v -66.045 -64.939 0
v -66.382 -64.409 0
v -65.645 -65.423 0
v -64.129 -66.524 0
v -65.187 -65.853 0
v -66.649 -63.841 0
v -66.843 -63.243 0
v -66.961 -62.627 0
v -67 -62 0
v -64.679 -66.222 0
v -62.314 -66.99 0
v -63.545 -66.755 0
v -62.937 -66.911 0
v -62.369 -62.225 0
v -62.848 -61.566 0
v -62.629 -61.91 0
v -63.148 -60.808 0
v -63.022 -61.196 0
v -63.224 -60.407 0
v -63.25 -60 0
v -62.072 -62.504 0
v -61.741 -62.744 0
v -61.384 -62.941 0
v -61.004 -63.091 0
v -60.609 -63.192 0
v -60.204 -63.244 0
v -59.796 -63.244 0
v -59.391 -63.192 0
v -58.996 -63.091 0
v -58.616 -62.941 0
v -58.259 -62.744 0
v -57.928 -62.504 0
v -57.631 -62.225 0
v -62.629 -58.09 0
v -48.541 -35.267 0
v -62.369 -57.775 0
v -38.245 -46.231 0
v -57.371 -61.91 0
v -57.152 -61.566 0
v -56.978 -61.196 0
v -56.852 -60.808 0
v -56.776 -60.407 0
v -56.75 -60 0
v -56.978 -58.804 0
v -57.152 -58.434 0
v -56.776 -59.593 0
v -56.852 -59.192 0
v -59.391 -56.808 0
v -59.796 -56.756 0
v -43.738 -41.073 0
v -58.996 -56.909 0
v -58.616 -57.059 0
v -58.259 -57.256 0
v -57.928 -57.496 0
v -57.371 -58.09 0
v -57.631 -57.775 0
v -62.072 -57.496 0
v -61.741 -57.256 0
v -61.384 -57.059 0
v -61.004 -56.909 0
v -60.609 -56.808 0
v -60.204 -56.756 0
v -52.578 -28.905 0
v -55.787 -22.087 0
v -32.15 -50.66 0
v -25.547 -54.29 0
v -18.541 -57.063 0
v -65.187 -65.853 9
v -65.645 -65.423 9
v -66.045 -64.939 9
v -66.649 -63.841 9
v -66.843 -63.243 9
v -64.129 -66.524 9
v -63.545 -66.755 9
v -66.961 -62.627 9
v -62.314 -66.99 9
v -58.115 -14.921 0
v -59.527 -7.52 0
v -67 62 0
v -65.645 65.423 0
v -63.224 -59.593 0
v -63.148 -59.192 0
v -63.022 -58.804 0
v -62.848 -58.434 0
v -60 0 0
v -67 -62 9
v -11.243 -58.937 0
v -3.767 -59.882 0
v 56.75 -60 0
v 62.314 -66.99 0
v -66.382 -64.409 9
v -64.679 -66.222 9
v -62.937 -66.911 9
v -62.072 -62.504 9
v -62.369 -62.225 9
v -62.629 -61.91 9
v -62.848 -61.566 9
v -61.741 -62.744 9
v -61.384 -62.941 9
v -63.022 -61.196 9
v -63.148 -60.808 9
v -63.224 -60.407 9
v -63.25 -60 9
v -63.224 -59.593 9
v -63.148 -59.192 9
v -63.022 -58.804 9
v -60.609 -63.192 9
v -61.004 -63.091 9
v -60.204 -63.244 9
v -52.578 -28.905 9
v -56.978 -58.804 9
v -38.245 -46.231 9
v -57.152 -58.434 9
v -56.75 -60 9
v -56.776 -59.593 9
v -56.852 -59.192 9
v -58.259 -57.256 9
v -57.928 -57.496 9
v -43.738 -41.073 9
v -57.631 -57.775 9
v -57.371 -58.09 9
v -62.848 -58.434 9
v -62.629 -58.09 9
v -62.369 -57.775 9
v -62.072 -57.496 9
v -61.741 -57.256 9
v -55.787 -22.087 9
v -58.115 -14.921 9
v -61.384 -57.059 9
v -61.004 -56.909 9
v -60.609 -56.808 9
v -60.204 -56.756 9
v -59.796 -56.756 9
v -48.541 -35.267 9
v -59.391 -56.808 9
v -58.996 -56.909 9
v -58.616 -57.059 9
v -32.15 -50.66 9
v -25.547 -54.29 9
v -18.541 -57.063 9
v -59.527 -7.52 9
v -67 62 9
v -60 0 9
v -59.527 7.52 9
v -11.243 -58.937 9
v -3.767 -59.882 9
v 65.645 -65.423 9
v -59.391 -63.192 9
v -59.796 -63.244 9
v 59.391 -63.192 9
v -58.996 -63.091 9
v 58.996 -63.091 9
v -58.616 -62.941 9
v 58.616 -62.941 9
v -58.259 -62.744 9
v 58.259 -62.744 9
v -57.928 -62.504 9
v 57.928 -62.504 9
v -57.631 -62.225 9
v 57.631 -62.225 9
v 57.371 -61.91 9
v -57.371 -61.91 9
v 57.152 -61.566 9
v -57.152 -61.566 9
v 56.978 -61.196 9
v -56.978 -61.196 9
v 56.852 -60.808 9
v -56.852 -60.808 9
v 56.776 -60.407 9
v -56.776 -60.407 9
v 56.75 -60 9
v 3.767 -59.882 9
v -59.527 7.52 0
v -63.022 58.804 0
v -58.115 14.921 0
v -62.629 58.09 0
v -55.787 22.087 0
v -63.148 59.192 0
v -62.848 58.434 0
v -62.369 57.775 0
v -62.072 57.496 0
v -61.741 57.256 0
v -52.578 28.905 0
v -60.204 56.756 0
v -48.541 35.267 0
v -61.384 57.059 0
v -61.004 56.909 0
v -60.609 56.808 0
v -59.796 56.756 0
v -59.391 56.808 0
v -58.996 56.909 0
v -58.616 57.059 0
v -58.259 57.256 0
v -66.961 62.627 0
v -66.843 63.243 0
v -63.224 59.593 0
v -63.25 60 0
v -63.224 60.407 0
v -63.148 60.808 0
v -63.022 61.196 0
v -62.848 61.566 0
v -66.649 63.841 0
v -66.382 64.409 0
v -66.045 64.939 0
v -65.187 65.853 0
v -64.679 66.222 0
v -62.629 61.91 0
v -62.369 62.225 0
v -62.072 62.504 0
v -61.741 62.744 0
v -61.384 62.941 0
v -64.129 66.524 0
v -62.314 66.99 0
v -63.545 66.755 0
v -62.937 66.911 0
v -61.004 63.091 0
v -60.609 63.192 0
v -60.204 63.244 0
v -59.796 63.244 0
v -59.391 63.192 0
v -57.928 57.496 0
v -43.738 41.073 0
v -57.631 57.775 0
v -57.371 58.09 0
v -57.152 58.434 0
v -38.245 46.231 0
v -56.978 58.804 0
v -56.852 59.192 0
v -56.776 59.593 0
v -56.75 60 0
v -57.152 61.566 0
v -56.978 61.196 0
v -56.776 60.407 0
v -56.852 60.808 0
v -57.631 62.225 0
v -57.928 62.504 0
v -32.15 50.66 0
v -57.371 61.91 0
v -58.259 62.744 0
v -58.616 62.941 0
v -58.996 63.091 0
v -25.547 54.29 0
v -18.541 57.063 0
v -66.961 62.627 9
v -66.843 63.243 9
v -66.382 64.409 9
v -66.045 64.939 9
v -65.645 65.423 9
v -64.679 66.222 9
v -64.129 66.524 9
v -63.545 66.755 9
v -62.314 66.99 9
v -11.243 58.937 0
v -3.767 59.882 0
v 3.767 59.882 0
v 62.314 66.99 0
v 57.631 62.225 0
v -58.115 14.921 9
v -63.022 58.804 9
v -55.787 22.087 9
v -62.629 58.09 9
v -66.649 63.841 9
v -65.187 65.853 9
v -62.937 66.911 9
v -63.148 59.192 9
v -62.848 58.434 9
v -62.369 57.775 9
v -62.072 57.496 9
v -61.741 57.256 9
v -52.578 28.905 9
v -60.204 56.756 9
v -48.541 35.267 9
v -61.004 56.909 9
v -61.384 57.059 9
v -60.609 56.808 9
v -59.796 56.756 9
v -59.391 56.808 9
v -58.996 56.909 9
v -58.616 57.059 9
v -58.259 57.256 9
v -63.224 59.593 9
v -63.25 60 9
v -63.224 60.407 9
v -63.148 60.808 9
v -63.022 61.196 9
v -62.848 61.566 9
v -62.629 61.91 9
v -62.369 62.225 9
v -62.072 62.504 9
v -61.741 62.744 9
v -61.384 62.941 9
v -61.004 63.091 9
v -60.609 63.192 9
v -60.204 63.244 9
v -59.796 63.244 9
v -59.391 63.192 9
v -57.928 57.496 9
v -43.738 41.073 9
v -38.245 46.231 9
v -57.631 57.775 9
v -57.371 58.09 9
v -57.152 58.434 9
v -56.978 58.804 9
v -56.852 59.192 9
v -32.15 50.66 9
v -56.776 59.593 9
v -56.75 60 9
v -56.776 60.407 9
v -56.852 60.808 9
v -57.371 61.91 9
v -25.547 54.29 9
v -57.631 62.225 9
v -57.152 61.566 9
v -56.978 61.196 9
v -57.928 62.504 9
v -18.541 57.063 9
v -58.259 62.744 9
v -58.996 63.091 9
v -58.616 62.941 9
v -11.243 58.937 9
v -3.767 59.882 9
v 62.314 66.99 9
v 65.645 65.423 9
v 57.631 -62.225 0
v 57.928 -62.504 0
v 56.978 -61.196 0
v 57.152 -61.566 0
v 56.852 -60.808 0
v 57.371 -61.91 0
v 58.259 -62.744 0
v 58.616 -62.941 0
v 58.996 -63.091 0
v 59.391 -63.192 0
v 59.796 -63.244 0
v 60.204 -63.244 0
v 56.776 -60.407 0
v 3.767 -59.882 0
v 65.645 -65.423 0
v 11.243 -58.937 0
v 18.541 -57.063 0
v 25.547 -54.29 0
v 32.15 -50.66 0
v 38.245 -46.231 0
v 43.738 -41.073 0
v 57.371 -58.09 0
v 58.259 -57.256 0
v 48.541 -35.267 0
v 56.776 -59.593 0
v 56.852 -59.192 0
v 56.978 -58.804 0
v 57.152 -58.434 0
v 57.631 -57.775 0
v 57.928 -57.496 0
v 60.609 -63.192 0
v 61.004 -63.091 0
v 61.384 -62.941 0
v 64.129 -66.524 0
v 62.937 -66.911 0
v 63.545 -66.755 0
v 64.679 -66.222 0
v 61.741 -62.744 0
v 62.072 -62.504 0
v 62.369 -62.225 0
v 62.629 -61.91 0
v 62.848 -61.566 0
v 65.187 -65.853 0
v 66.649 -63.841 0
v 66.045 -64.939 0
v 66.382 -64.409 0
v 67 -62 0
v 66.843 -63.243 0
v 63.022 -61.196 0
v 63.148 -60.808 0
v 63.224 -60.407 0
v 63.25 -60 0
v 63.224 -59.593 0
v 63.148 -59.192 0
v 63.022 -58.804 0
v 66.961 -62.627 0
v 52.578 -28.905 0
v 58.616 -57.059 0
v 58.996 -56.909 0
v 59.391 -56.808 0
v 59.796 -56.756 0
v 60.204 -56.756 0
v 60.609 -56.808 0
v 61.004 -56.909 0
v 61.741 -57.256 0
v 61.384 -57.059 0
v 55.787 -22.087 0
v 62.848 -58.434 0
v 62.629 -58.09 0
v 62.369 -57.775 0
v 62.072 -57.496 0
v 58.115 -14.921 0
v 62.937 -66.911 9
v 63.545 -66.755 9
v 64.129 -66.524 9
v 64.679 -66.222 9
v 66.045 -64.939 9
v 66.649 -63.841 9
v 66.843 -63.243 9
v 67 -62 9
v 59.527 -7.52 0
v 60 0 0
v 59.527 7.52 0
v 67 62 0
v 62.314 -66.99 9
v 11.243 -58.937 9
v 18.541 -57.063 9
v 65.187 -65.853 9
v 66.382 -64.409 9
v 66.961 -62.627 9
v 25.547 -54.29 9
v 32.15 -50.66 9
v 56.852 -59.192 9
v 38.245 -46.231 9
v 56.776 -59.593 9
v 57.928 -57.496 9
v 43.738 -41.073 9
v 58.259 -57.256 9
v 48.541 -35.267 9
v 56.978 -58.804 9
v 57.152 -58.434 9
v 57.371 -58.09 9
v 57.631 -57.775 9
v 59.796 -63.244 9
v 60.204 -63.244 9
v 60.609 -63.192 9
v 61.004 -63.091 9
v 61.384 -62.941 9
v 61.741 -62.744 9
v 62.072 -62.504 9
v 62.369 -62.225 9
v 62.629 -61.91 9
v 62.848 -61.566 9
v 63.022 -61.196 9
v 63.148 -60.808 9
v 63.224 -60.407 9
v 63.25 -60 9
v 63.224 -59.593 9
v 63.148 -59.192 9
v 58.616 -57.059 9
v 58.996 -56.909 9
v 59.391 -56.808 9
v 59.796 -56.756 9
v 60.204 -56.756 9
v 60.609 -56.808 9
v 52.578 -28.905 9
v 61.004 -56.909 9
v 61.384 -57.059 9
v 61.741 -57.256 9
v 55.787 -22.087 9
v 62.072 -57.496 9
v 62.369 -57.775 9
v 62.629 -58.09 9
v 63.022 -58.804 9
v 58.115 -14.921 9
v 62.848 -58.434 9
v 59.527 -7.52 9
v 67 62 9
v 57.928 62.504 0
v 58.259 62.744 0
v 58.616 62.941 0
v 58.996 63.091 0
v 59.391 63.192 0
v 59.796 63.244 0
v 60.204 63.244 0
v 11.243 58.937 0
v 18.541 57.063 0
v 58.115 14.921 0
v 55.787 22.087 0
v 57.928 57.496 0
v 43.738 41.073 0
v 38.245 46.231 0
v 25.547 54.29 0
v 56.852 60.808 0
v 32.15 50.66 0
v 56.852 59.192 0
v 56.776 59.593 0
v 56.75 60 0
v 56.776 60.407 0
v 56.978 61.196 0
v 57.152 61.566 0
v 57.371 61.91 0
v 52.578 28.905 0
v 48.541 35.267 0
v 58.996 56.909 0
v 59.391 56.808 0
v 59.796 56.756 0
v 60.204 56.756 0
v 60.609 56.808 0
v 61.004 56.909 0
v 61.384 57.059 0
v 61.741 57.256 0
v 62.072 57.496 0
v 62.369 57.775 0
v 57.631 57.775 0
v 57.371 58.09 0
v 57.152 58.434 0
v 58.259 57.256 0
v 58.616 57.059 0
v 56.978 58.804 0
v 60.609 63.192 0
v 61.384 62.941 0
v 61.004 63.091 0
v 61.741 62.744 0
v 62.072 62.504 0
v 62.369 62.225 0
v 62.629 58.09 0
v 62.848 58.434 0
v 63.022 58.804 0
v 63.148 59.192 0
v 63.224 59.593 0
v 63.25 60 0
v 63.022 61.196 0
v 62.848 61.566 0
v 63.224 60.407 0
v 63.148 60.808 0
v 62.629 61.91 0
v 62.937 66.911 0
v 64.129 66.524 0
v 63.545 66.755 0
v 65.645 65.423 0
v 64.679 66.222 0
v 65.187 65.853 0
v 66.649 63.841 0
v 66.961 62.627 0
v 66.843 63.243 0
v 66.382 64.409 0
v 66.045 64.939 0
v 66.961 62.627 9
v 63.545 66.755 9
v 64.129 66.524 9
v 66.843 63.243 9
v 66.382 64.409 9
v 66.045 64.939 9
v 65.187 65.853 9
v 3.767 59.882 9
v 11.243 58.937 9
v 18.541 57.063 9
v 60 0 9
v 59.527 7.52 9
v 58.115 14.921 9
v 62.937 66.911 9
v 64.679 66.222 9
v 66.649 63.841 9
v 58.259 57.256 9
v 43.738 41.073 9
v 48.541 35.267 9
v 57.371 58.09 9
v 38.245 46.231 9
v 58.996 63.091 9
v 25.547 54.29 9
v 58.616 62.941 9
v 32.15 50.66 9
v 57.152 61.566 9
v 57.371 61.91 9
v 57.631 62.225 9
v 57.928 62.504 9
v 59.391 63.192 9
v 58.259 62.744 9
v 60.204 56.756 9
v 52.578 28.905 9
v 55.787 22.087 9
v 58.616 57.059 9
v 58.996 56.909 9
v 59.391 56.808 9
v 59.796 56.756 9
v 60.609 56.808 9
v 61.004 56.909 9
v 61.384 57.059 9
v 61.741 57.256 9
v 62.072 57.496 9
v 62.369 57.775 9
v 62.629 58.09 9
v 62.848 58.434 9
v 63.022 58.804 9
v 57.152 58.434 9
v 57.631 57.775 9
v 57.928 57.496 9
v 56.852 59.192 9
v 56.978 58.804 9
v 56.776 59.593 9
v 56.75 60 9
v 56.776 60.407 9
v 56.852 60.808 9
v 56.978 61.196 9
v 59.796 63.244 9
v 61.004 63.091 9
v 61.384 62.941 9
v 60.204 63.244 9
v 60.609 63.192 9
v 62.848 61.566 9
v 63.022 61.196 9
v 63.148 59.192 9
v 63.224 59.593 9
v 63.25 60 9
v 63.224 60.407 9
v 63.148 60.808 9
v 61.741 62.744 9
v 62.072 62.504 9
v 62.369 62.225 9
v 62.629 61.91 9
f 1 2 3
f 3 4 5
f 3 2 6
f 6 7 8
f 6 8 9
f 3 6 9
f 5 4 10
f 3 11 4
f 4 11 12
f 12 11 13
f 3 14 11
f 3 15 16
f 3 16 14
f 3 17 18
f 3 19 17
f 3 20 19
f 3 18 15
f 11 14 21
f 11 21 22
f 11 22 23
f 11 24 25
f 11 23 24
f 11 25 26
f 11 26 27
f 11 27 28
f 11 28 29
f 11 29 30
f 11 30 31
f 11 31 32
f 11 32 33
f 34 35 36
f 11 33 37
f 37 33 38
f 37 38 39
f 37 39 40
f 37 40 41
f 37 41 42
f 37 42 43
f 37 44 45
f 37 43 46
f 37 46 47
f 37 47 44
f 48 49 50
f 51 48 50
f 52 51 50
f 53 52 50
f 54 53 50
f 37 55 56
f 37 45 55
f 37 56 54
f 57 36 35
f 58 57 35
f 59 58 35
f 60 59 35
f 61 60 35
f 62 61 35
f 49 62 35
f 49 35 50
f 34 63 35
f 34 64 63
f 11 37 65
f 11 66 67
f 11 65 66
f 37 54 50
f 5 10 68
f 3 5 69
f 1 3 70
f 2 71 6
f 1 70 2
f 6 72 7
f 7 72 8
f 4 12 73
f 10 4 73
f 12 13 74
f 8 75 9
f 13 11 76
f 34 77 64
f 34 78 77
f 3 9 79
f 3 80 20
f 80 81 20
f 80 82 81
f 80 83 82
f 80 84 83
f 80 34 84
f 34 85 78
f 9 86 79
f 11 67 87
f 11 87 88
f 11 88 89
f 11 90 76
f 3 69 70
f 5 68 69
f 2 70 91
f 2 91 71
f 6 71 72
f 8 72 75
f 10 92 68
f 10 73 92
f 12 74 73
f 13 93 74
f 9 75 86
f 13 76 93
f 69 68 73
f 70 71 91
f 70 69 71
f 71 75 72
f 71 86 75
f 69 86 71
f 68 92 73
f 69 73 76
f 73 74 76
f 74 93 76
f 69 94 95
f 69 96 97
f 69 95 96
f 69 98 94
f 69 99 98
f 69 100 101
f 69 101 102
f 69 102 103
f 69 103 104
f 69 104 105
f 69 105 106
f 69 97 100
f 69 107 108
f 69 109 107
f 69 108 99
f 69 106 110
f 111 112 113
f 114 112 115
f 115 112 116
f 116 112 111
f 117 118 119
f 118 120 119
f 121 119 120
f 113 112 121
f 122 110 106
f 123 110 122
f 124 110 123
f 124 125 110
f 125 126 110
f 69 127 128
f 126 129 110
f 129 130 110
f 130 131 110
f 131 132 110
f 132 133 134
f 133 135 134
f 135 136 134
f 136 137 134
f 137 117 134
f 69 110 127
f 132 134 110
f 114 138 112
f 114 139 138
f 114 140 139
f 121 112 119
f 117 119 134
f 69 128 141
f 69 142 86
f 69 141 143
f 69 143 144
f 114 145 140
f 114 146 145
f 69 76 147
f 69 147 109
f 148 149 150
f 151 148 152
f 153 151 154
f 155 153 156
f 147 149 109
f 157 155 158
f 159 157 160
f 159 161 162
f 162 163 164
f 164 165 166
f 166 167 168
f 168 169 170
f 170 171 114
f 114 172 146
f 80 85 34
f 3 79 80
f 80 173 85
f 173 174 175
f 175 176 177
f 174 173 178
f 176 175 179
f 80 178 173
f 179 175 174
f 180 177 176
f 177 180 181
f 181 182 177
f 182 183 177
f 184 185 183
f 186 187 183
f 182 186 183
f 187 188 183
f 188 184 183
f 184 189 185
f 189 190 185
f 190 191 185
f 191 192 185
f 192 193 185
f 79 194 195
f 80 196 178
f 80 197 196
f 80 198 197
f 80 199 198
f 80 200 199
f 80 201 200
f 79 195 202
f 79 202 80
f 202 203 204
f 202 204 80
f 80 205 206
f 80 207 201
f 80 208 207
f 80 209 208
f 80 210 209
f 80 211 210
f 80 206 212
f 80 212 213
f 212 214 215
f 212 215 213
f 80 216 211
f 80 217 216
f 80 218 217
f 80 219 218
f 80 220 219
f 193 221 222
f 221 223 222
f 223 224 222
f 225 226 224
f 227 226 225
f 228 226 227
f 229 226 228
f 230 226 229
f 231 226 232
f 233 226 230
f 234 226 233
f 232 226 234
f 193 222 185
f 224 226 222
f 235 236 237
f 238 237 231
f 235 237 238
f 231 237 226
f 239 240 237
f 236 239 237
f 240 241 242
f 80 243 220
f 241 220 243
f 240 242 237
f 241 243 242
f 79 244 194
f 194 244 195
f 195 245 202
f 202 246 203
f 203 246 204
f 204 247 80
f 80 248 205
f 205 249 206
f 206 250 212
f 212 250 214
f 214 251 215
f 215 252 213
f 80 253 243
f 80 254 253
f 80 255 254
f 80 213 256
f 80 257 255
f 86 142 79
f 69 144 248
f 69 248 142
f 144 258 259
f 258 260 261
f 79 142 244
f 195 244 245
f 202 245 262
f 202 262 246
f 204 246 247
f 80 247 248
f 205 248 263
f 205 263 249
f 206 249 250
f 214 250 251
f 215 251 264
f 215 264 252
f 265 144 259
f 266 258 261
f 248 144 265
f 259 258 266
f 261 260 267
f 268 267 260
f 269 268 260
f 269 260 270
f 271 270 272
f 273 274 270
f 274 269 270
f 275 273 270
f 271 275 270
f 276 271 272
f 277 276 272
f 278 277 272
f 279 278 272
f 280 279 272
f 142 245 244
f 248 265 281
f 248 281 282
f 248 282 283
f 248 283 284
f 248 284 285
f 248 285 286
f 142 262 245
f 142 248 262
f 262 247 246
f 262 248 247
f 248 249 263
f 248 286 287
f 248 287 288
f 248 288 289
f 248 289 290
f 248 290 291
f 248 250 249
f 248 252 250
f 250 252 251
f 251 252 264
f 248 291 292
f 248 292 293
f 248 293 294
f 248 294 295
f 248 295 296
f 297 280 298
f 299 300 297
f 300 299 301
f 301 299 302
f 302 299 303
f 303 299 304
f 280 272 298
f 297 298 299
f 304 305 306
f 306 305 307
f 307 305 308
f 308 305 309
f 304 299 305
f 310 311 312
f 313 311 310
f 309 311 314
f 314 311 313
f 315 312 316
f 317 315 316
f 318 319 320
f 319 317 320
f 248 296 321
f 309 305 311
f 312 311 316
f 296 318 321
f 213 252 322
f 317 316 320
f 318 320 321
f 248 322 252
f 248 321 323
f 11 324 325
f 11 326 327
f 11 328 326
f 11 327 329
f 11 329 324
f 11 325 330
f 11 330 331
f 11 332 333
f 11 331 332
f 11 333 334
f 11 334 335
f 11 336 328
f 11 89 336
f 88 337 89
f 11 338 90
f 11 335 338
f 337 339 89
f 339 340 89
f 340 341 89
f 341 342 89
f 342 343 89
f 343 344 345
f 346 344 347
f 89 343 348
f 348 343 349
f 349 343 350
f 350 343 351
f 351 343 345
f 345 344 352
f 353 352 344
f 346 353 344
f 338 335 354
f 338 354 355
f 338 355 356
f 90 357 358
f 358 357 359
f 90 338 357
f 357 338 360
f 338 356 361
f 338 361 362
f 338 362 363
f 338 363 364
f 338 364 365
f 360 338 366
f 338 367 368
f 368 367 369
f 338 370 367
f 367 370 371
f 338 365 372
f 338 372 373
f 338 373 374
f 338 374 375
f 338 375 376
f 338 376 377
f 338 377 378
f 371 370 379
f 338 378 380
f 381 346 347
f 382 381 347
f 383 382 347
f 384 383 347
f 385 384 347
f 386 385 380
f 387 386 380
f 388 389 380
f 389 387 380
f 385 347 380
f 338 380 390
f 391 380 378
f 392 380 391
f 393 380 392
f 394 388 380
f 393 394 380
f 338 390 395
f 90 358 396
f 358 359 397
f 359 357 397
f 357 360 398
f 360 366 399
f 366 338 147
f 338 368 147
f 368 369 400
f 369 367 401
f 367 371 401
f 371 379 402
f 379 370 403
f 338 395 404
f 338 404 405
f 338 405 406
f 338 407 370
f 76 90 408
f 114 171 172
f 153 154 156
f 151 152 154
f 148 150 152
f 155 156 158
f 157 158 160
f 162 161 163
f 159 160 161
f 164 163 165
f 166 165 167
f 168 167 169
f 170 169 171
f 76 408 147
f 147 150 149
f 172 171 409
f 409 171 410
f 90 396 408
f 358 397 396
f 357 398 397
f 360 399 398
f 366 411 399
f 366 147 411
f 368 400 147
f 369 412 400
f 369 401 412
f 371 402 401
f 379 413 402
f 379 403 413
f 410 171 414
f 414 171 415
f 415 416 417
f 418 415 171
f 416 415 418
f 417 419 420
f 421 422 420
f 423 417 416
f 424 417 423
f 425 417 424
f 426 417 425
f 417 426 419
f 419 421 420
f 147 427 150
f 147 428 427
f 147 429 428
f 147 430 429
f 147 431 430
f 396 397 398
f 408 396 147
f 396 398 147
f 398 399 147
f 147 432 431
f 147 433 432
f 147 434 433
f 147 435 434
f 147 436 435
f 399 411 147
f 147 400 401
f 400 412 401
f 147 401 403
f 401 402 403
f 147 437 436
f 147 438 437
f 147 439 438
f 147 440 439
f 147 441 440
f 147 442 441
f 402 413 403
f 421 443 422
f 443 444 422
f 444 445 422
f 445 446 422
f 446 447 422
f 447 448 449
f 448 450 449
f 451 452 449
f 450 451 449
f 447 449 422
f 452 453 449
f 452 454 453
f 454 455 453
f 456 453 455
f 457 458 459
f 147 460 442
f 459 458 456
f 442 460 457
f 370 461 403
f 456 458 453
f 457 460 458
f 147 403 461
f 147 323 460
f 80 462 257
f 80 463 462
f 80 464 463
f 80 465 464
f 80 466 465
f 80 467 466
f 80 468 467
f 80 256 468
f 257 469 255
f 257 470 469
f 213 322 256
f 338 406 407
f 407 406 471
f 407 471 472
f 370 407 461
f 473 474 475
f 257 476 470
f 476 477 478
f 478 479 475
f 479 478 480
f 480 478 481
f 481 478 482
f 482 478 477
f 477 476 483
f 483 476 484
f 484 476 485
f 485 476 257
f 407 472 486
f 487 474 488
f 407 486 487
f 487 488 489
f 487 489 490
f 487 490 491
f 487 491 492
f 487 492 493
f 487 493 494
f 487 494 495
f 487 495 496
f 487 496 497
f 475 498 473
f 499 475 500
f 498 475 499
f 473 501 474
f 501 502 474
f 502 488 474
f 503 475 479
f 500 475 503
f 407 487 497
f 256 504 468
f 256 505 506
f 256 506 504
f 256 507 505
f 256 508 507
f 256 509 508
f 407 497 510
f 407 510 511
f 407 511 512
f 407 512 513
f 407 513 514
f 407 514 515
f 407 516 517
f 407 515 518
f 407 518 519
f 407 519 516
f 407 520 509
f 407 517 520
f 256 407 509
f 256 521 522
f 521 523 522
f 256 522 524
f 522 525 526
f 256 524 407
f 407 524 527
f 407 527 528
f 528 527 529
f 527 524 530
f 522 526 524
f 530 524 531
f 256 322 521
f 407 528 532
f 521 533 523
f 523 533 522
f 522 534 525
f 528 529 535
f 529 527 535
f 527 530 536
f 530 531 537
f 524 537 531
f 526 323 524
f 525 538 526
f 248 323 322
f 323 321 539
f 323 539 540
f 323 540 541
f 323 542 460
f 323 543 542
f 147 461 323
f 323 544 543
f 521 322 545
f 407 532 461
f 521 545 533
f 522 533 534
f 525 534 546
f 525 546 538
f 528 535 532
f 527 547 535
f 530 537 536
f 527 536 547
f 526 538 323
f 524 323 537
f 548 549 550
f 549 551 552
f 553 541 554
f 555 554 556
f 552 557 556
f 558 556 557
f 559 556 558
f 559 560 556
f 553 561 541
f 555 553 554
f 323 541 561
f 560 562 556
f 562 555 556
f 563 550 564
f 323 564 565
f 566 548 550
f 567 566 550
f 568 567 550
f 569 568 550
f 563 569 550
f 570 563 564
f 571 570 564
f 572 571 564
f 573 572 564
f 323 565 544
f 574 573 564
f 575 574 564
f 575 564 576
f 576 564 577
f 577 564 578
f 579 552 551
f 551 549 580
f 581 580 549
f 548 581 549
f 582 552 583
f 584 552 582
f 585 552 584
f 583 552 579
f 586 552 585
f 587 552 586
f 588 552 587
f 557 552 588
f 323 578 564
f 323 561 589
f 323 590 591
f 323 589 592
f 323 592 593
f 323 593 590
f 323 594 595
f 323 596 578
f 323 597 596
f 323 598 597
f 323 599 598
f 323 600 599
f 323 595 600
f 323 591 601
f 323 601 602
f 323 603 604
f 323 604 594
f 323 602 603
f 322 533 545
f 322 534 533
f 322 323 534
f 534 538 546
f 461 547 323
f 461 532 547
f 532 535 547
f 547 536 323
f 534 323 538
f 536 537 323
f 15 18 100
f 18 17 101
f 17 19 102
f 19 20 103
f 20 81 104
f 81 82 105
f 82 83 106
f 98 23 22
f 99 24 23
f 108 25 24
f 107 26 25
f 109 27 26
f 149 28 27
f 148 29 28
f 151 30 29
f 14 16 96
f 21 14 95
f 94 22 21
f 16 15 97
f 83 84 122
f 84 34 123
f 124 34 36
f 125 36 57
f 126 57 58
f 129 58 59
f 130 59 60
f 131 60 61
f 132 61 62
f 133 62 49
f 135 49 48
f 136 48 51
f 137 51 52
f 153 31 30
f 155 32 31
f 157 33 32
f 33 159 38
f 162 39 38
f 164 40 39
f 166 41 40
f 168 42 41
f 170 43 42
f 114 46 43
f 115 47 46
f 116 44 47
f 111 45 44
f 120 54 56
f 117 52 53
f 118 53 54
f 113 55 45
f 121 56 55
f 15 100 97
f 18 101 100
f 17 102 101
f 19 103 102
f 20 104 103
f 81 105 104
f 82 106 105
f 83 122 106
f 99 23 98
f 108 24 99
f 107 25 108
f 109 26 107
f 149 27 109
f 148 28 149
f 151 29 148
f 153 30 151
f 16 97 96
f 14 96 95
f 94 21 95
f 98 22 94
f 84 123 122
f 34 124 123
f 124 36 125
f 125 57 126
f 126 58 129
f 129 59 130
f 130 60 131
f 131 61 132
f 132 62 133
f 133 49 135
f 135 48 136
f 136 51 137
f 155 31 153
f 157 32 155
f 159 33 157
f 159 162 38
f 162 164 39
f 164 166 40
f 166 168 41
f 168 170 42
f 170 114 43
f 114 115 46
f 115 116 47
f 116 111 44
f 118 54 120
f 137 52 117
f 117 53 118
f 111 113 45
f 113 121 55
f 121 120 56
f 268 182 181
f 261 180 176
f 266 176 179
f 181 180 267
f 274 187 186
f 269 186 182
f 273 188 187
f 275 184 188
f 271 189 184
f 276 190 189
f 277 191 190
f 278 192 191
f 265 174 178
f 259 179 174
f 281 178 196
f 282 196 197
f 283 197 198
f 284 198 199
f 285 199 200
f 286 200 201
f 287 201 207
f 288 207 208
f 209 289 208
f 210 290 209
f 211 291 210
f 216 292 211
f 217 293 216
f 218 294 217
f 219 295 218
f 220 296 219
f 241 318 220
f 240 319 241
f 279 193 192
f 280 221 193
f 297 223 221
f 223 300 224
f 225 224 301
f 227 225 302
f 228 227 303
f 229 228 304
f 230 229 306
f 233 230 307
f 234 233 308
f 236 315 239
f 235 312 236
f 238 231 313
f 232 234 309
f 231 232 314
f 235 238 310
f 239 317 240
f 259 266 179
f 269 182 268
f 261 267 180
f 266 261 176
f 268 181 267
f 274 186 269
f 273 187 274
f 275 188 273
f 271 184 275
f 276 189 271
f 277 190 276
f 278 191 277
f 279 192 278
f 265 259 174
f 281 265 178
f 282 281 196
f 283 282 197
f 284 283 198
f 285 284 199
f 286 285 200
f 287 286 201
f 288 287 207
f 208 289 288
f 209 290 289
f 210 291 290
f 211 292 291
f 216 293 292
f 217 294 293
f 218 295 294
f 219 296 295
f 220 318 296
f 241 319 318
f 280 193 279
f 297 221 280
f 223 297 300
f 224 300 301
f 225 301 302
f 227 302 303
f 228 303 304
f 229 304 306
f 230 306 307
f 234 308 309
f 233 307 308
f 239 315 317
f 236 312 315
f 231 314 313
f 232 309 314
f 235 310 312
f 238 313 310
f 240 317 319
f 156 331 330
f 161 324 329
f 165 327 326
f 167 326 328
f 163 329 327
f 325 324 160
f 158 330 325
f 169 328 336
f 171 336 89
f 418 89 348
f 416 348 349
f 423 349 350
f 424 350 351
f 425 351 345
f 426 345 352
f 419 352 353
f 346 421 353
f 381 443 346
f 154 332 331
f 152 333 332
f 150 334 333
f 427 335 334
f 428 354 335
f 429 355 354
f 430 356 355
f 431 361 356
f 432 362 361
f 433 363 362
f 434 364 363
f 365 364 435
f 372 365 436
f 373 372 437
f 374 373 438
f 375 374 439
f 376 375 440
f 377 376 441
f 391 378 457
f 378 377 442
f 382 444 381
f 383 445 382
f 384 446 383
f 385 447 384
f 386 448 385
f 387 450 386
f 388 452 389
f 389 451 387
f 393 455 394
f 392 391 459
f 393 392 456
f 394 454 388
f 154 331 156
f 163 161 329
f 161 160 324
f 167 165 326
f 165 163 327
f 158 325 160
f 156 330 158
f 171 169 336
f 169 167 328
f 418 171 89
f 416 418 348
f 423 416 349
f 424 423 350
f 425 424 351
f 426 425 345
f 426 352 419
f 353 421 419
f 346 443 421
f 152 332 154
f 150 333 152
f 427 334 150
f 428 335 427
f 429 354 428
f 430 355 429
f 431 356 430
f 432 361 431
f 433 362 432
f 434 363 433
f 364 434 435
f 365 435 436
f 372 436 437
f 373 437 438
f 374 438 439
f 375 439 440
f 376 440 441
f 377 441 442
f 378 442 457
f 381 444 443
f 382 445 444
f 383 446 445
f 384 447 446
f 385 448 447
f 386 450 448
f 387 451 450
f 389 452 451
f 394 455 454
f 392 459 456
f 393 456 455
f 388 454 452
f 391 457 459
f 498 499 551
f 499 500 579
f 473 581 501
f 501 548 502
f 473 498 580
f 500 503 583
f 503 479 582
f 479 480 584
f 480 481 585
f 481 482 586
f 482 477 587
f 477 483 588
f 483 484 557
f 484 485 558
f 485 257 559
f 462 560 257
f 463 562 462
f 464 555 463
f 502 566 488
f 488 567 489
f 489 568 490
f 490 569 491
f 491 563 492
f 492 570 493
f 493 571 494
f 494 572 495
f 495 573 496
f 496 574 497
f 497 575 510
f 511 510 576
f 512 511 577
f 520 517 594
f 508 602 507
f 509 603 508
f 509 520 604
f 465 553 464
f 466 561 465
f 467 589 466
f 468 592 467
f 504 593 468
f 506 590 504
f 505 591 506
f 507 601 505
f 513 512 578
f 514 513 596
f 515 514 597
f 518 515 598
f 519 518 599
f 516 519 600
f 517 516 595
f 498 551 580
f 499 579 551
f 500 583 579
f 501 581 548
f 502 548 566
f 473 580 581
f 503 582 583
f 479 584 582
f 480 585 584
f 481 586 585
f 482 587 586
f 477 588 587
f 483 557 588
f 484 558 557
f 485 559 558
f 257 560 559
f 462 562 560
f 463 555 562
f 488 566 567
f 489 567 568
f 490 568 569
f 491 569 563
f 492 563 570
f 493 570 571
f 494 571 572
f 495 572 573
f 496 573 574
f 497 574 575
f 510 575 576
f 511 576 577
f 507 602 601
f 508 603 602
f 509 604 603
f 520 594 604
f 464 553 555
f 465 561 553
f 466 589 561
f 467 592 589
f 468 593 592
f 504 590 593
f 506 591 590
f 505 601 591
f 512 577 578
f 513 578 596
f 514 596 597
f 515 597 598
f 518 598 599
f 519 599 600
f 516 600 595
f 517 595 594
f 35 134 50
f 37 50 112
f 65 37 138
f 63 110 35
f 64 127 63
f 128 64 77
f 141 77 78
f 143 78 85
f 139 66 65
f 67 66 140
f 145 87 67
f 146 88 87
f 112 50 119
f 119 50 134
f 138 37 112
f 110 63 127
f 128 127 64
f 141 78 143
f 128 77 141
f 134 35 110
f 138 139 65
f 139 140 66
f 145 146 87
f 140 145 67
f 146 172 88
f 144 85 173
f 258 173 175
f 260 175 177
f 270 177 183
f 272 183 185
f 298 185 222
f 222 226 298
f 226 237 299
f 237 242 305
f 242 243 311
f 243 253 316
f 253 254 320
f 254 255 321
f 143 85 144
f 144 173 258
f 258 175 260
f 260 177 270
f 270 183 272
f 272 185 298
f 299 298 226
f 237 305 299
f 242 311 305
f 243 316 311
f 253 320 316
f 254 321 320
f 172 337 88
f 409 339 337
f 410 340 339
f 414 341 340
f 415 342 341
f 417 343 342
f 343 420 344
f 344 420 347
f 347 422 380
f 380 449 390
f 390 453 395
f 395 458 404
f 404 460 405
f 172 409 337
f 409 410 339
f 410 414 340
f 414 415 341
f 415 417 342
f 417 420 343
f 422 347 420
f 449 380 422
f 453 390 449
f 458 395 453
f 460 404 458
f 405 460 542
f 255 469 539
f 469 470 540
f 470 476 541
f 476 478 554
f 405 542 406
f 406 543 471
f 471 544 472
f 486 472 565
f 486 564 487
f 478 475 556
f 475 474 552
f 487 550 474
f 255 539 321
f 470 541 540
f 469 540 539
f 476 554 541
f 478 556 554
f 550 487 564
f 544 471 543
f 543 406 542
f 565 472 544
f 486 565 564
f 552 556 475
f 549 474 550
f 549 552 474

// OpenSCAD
$fn = 50;

difference() {
	union() {
		hull() {
			translate(v = [-62.0, 62.0, 0]) {
				cylinder(h = 9, r = 5);
			}
			translate(v = [62.0, 62.0, 0]) {
				cylinder(h = 9, r = 5);
			}
			translate(v = [-62.0, -62.0, 0]) {
				cylinder(h = 9, r = 5);
			}
			translate(v = [62.0, -62.0, 0]) {
				cylinder(h = 9, r = 5);
			}
		}
	}
	union() {
		translate(v = [-60.0, -60.0, -100.0]) {
			cylinder(h = 200, r = 3.25);
		}
		translate(v = [-60.0, 60.0, -100.0]) {
			cylinder(h = 200, r = 3.25);
		}
		translate(v = [60.0, -60.0, -100.0]) {
			cylinder(h = 200, r = 3.25);
		}
		translate(v = [60.0, 60.0, -100.0]) {
			cylinder(h = 200, r = 3.25);
		}
		translate(v = [-60.0, -60.0, -100.0]) {
			cylinder(h = 200, r = 1.8);
		}
		translate(v = [-60.0, 60.0, -100.0]) {
			cylinder(h = 200, r = 1.8);
		}
		translate(v = [60.0, -60.0, -100.0]) {
			cylinder(h = 200, r = 1.8);
		}
		translate(v = [60.0, 60.0, -100.0]) {
			cylinder(h = 200, r = 1.8);
		}
		cylinder(h = 9, r = 60.0);
	}
}
